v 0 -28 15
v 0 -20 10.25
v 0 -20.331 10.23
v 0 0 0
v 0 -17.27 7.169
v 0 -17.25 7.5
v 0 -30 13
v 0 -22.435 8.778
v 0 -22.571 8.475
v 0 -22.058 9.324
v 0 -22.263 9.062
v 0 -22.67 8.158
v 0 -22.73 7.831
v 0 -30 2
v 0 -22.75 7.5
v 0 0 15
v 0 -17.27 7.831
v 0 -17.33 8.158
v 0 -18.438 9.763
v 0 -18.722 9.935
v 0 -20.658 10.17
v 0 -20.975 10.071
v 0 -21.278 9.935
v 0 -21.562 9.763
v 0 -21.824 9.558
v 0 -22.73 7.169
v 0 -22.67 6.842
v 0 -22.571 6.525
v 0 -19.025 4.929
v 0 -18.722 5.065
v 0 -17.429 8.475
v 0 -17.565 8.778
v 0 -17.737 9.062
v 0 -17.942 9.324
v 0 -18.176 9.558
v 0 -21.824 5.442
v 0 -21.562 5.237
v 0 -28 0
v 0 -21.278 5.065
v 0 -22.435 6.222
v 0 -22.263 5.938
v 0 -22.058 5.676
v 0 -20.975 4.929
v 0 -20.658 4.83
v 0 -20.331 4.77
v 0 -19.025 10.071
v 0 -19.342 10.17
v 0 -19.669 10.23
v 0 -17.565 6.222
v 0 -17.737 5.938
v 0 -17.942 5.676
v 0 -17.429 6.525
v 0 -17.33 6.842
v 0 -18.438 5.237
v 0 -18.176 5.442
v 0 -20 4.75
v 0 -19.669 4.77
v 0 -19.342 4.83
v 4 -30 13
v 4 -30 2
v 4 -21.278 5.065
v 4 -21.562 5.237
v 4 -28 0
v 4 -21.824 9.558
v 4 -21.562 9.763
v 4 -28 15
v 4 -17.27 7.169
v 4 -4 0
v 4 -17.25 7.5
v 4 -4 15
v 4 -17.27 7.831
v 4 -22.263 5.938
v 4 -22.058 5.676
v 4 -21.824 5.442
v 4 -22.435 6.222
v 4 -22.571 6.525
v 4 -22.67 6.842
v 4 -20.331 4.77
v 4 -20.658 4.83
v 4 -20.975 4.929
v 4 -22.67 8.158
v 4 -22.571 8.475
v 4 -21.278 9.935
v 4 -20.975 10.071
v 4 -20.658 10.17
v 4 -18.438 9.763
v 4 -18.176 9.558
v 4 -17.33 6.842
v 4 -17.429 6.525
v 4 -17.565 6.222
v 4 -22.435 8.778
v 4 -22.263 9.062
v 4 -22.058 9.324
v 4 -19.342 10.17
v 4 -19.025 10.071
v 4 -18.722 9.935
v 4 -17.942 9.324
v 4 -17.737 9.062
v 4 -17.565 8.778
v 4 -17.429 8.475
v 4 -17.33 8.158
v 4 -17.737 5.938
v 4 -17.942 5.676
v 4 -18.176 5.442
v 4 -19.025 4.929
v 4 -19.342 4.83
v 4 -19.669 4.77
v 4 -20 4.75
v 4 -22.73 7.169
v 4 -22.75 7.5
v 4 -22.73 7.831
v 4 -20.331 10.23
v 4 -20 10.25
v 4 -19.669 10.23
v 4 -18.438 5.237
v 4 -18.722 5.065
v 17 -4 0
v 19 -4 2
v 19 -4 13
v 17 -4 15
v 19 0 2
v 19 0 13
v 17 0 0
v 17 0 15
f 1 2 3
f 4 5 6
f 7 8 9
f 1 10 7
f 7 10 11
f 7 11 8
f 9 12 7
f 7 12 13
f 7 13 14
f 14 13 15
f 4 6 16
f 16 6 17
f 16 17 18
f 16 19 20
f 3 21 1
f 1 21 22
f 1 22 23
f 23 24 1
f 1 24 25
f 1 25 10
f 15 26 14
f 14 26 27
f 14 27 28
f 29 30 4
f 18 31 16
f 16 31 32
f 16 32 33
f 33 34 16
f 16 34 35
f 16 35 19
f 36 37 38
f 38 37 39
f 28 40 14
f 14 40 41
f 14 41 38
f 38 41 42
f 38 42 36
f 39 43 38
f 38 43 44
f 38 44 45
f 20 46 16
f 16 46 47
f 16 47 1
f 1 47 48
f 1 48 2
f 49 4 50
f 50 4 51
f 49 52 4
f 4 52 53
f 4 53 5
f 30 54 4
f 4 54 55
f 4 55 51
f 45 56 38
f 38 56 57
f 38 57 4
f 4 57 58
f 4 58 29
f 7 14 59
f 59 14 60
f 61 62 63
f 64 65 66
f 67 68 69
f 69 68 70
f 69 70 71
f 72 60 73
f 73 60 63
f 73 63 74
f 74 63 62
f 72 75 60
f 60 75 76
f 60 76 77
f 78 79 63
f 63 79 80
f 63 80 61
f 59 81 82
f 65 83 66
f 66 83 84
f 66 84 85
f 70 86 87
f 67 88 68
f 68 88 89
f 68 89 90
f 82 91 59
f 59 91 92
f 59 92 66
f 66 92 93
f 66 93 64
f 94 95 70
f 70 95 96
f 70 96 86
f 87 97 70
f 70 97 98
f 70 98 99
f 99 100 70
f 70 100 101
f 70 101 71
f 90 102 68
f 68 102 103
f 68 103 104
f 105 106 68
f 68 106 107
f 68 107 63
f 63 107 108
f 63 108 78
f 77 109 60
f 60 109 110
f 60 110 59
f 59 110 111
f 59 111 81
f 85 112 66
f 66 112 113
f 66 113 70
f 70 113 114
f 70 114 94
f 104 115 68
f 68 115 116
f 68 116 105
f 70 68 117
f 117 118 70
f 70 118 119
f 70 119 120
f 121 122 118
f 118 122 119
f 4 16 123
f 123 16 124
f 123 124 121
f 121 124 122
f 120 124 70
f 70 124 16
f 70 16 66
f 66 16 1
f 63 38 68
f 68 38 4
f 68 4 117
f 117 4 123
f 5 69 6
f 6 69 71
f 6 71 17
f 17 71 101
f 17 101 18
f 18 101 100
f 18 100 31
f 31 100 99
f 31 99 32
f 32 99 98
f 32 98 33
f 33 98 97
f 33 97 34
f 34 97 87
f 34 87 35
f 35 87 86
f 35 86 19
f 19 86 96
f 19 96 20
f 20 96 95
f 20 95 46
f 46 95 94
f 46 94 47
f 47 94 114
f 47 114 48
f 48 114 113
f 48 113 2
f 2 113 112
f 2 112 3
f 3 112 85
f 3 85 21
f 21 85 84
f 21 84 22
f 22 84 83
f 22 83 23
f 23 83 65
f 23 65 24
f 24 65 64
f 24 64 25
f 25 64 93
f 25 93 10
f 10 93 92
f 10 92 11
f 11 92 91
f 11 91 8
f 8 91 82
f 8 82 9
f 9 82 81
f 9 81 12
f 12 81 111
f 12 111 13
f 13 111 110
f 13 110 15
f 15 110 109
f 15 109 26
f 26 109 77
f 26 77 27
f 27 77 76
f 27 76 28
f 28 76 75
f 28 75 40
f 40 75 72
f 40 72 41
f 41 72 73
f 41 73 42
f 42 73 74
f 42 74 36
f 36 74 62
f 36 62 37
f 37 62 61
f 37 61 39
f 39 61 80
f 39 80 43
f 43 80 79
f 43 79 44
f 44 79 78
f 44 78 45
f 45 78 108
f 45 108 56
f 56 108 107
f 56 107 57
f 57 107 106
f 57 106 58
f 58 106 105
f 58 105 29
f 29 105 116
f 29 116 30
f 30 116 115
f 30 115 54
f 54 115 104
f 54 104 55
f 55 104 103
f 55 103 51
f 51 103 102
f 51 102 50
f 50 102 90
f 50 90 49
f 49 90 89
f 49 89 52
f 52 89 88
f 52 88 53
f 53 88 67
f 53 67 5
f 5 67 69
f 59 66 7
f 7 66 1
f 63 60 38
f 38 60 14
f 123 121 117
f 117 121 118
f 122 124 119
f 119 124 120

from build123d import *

# Parameters (mm, degrees)
BOSS_EXTRUDE1_DEPTH = 15
CUT_EXTRUDE1_REACH  = 6
SKETCH2_R           = 2.75
CHAMFER1_SIZE       = 2


with BuildPart() as part:
    # Sketch1 → Boss-Extrude1 (new body)
    with BuildSketch(Plane.XY):
        Polygon((0, 0), (19, 0), (19, -4), (4, -4), (4, -30), (0, -30), align=None)
    extrude(amount=BOSS_EXTRUDE1_DEPTH)

    # Sketch2 → Cut-Extrude1 (cut, up to next)
    with BuildSketch(Plane(origin=(4, 0, 0), x_dir=(0, 0, -1), z_dir=(1, 0, 0)), mode=Mode.PRIVATE) as cut_extrude1_sk1:
        with Locations((-7.5, -20)):
            Circle(SKETCH2_R)
    cut_extrude1_tool1 = extrude(cut_extrude1_sk1.sketch, amount=-CUT_EXTRUDE1_REACH, mode=Mode.PRIVATE) & part.part
    add(cut_extrude1_tool1.solids().sort_by_distance((4, -20, 7.5))[0], mode=Mode.SUBTRACT)

    # Chamfer1
    chamfer1_edges = [part.edges().sort_by_distance(p)[0] for p in [
        (19, -2, 15),
        (19, -2, 0),
        (2, -30, 15),
        (2, -30, 0),
    ]]
    chamfer(chamfer1_edges, length=CHAMFER1_SIZE)


solid = part.part
